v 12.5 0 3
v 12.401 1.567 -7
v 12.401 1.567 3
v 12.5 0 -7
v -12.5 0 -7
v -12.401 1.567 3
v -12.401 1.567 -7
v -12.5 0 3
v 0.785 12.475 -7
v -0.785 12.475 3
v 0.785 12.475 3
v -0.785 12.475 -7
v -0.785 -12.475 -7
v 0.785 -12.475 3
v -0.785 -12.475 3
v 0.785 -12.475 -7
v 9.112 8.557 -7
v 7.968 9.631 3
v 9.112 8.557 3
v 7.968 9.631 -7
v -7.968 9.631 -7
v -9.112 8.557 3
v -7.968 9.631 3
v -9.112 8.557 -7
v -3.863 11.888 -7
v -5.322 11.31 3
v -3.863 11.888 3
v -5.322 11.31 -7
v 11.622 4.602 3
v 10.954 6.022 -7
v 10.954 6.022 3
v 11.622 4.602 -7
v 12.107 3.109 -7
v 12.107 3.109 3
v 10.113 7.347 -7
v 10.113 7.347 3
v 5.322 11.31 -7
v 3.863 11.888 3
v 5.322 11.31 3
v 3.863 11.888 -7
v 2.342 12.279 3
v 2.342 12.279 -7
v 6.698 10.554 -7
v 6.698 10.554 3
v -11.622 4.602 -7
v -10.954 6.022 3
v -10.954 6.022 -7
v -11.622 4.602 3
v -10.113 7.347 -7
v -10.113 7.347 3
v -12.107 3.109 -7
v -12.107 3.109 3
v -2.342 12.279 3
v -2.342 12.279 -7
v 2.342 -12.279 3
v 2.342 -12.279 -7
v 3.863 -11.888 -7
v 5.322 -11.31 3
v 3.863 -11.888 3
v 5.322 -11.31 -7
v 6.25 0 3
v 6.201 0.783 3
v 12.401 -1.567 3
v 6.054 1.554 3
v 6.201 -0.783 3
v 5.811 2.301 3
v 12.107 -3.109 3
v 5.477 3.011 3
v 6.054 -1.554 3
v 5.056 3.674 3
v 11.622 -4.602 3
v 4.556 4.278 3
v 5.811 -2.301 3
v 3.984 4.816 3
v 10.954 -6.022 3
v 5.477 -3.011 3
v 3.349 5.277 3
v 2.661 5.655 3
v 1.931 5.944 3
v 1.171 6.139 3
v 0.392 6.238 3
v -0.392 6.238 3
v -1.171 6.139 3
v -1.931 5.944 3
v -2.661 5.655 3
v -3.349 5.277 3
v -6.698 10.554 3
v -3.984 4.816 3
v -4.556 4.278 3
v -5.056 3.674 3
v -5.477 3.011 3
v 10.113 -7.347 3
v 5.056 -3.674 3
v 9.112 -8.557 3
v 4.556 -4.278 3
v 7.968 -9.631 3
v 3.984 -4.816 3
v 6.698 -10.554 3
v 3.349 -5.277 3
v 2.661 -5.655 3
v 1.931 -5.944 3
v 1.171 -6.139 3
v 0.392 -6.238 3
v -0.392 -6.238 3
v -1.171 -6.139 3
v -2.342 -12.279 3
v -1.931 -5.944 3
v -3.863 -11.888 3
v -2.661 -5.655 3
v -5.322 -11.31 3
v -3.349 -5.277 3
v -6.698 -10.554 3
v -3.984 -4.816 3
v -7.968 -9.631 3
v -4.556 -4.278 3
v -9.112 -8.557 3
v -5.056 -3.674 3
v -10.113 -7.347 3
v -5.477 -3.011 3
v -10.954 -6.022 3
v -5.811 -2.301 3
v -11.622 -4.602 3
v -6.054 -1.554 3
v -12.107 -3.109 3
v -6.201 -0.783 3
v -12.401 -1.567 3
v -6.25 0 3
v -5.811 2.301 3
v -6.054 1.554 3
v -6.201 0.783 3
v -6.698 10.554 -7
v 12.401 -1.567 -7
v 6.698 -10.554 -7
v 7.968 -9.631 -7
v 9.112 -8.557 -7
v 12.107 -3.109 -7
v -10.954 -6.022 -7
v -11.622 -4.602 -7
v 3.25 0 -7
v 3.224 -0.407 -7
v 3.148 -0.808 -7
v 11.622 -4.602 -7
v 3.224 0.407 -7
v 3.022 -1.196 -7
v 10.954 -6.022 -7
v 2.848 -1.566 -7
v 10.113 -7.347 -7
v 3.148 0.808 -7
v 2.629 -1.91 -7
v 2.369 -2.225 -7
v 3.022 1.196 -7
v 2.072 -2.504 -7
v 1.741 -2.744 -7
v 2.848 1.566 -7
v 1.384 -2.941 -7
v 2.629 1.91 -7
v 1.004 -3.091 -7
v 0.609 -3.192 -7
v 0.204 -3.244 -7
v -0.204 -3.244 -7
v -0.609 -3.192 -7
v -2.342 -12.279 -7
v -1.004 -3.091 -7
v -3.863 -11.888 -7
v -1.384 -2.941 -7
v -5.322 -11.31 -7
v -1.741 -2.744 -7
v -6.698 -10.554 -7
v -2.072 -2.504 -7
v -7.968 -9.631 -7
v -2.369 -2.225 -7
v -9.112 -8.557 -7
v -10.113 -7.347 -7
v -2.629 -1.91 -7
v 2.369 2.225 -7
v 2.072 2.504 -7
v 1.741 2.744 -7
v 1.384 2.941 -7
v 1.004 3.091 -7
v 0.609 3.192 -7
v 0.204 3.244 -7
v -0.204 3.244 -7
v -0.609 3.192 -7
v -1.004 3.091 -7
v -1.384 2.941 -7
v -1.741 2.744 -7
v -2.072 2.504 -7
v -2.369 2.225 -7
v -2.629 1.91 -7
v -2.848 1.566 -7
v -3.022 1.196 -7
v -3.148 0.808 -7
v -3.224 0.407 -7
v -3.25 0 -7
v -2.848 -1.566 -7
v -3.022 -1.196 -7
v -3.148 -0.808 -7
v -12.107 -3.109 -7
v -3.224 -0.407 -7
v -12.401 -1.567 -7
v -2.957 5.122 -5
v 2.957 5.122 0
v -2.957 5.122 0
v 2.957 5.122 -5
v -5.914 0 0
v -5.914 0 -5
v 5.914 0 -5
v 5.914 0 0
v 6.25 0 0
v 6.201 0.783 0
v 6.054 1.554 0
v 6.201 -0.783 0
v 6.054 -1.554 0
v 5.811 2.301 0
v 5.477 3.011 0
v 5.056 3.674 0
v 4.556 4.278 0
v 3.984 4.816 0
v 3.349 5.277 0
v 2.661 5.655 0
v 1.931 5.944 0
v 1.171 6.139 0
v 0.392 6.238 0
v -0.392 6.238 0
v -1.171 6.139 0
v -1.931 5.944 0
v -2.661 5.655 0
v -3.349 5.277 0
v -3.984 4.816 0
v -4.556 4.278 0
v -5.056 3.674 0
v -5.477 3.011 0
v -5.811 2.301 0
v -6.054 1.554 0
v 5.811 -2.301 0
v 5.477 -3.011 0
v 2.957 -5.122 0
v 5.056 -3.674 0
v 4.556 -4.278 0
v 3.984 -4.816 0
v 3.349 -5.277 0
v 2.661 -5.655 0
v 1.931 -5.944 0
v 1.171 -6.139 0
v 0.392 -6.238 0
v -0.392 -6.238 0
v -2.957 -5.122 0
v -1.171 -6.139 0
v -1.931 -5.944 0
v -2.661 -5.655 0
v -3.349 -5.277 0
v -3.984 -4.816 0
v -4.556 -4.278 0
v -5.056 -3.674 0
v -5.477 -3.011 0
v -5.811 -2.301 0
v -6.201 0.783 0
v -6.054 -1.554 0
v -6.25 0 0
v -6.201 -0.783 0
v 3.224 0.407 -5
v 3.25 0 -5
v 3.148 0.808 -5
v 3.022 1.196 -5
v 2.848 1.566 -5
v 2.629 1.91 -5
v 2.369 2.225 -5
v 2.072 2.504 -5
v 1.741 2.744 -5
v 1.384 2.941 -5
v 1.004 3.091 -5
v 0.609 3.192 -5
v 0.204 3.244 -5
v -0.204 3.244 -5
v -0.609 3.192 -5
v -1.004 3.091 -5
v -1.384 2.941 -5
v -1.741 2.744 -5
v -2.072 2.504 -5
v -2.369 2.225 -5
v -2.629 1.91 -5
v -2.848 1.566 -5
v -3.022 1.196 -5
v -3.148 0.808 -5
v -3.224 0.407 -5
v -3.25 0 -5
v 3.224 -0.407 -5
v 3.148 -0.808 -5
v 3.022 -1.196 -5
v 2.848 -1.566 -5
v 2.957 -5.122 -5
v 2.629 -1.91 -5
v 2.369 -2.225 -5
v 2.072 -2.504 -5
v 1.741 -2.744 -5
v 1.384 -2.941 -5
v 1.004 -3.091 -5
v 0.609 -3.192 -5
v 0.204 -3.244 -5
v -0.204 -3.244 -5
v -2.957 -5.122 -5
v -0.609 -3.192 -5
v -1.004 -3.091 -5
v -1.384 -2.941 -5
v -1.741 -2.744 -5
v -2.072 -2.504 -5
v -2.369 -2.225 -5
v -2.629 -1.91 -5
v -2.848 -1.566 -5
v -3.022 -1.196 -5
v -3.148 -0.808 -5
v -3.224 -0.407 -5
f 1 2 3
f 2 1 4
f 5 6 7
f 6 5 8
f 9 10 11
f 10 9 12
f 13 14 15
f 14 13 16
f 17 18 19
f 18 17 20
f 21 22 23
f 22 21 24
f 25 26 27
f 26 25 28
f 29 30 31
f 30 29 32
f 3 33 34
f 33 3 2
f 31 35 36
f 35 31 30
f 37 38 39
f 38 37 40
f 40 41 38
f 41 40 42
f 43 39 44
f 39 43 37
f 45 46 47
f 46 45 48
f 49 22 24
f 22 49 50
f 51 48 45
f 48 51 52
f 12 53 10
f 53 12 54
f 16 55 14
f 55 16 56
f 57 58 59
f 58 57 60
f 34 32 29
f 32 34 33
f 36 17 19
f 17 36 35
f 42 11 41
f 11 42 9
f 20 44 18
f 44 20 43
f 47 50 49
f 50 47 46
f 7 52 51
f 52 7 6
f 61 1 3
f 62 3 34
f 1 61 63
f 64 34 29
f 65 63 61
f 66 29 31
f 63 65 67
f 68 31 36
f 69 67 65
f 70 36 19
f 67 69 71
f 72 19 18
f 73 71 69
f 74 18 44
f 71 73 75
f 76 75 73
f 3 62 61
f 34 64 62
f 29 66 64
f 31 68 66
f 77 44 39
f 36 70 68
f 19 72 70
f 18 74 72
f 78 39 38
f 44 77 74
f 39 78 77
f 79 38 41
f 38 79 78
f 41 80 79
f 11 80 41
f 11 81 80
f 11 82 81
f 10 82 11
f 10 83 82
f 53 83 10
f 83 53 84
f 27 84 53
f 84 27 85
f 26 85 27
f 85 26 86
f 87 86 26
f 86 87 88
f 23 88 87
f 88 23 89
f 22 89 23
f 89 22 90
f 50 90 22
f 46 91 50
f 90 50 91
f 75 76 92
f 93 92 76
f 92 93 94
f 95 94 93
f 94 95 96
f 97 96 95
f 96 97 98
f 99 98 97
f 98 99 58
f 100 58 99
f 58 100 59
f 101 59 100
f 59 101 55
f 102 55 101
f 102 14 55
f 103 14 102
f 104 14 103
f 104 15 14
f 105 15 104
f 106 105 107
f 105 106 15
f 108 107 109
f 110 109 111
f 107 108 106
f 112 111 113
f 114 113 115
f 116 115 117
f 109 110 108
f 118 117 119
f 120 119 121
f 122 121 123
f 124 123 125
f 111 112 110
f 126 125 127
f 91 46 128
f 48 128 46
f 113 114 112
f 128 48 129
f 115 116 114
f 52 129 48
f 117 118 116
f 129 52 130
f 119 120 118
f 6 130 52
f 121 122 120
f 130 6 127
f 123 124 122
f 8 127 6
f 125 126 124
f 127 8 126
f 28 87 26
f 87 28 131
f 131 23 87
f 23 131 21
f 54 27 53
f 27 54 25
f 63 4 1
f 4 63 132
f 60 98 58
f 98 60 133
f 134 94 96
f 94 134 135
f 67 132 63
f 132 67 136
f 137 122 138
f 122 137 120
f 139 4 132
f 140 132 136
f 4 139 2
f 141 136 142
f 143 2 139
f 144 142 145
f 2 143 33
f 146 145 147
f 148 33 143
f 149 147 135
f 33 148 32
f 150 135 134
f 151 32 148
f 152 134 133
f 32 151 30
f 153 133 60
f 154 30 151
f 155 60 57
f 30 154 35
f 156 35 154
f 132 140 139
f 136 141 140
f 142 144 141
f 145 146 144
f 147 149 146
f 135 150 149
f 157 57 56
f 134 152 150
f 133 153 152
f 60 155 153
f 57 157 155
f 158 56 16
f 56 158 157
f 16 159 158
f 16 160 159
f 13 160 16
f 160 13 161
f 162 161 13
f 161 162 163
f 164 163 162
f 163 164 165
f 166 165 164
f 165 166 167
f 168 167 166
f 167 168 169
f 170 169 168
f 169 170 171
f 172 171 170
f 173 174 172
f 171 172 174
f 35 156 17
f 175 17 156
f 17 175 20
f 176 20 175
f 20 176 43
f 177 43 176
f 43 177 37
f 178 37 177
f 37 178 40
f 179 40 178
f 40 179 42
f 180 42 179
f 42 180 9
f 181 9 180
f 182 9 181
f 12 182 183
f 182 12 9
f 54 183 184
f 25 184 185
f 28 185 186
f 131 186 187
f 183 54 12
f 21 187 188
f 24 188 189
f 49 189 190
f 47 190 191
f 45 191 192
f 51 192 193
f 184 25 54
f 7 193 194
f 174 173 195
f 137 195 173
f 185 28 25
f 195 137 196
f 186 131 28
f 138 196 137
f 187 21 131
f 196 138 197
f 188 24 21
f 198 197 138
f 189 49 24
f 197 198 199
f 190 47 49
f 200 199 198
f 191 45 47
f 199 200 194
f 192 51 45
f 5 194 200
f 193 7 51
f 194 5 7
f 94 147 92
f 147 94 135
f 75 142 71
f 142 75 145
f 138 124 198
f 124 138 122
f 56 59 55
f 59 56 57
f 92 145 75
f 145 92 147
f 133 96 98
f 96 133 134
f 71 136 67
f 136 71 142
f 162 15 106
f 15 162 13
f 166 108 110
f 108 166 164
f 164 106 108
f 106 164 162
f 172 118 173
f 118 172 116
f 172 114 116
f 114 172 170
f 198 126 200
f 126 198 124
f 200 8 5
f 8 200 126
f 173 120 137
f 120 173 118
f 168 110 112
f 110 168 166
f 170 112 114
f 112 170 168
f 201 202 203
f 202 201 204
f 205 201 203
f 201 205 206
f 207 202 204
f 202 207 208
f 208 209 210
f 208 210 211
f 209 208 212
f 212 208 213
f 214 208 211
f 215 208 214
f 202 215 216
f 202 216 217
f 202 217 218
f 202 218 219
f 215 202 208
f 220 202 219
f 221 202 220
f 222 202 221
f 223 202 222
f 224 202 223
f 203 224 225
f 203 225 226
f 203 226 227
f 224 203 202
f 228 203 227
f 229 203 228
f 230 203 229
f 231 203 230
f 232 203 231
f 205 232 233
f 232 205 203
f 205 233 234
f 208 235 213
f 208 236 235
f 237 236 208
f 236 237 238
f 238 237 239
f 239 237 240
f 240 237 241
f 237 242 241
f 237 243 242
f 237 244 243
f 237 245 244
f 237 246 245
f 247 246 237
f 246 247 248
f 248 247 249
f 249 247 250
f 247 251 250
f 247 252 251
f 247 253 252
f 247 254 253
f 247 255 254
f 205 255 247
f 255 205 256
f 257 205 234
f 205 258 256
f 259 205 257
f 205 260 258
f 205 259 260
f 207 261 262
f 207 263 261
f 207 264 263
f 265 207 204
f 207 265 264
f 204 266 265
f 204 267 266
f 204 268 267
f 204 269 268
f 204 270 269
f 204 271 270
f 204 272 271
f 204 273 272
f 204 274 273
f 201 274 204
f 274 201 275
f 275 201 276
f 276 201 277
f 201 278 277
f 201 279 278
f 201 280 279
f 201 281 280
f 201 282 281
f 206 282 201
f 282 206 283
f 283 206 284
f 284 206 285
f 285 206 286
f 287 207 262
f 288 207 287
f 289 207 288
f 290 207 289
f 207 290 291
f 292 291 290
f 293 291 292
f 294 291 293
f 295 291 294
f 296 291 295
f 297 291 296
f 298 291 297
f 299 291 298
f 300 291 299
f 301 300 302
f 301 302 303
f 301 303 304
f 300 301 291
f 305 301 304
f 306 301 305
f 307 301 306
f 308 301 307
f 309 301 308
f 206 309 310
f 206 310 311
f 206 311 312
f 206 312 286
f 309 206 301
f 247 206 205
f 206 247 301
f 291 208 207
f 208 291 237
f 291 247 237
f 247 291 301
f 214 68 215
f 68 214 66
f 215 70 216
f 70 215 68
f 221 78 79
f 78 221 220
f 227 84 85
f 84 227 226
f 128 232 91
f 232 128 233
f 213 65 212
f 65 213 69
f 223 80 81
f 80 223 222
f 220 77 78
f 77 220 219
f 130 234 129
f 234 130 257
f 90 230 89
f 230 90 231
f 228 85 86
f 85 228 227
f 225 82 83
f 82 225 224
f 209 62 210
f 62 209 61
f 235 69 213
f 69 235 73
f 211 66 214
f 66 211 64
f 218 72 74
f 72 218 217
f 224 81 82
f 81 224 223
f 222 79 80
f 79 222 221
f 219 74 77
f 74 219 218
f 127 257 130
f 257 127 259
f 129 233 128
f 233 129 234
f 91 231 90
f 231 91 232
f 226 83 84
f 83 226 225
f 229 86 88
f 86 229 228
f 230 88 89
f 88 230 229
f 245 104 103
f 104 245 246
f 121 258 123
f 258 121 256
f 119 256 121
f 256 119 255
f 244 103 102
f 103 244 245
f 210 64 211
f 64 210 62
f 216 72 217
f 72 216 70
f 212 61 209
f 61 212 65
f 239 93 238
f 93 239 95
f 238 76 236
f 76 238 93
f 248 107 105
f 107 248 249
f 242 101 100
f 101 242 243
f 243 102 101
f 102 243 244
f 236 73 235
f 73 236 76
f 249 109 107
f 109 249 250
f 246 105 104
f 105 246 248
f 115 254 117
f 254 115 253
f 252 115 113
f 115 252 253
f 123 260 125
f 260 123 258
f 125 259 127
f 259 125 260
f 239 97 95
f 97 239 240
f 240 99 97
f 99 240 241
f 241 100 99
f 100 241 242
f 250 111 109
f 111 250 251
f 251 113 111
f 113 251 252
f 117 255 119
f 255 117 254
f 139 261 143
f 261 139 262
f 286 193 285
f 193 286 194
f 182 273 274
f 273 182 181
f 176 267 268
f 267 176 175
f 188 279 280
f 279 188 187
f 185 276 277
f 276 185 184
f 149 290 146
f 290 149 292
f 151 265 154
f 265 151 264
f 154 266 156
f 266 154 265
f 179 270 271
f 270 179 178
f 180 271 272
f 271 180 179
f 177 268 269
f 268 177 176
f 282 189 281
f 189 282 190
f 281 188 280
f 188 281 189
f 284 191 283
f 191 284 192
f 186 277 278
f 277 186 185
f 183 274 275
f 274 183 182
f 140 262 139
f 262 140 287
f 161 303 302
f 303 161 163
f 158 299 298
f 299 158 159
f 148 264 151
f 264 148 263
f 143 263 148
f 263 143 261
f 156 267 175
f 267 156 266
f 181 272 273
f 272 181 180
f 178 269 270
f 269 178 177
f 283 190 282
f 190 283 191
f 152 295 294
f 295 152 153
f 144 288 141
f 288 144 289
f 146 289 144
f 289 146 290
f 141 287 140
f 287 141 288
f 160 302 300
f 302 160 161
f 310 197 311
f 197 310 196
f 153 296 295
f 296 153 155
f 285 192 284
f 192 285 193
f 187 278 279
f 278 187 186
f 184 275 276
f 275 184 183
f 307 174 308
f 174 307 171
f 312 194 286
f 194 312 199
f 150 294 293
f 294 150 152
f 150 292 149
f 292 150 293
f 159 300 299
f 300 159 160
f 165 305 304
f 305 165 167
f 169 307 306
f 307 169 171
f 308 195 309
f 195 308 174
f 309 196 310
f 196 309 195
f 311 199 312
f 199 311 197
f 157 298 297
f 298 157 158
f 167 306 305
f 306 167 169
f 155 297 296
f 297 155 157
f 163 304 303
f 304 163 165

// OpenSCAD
$fn = 50;

difference() {
	union() {
		translate(v = [0, 0, -7.0]) {
			cylinder(h = 10.0, r = 12.5);
		}
		#translate(v = [0, 0, -8.5]) {
			cylinder(h = 8.5, r = 2.875);
		}
	}
	union() {
		translate(v = [0, 0, 0]) {
			rotate(a = [0, 0, 0]) {
				difference() {
					union() {
						translate(v = [0, 0, -5]) {
							linear_extrude(height = 5) {
								polygon(points = [[5.914249999999999, 0.0], [2.957125, 5.1218907443321156], [-2.9571249999999982, 5.1218907443321156], [-5.914249999999999, 7.242867331857232e-16], [-2.9571250000000022, -5.121890744332115], [2.9571249999999956, -5.121890744332118]]);
							}
						}
					}
					union();
				}
			}
		}
		#cylinder(h = 3, r = 6.25);
		#translate(v = [0, 0, -100.0]) {
			cylinder(h = 200, r = 3.25);
		}
	}
}
